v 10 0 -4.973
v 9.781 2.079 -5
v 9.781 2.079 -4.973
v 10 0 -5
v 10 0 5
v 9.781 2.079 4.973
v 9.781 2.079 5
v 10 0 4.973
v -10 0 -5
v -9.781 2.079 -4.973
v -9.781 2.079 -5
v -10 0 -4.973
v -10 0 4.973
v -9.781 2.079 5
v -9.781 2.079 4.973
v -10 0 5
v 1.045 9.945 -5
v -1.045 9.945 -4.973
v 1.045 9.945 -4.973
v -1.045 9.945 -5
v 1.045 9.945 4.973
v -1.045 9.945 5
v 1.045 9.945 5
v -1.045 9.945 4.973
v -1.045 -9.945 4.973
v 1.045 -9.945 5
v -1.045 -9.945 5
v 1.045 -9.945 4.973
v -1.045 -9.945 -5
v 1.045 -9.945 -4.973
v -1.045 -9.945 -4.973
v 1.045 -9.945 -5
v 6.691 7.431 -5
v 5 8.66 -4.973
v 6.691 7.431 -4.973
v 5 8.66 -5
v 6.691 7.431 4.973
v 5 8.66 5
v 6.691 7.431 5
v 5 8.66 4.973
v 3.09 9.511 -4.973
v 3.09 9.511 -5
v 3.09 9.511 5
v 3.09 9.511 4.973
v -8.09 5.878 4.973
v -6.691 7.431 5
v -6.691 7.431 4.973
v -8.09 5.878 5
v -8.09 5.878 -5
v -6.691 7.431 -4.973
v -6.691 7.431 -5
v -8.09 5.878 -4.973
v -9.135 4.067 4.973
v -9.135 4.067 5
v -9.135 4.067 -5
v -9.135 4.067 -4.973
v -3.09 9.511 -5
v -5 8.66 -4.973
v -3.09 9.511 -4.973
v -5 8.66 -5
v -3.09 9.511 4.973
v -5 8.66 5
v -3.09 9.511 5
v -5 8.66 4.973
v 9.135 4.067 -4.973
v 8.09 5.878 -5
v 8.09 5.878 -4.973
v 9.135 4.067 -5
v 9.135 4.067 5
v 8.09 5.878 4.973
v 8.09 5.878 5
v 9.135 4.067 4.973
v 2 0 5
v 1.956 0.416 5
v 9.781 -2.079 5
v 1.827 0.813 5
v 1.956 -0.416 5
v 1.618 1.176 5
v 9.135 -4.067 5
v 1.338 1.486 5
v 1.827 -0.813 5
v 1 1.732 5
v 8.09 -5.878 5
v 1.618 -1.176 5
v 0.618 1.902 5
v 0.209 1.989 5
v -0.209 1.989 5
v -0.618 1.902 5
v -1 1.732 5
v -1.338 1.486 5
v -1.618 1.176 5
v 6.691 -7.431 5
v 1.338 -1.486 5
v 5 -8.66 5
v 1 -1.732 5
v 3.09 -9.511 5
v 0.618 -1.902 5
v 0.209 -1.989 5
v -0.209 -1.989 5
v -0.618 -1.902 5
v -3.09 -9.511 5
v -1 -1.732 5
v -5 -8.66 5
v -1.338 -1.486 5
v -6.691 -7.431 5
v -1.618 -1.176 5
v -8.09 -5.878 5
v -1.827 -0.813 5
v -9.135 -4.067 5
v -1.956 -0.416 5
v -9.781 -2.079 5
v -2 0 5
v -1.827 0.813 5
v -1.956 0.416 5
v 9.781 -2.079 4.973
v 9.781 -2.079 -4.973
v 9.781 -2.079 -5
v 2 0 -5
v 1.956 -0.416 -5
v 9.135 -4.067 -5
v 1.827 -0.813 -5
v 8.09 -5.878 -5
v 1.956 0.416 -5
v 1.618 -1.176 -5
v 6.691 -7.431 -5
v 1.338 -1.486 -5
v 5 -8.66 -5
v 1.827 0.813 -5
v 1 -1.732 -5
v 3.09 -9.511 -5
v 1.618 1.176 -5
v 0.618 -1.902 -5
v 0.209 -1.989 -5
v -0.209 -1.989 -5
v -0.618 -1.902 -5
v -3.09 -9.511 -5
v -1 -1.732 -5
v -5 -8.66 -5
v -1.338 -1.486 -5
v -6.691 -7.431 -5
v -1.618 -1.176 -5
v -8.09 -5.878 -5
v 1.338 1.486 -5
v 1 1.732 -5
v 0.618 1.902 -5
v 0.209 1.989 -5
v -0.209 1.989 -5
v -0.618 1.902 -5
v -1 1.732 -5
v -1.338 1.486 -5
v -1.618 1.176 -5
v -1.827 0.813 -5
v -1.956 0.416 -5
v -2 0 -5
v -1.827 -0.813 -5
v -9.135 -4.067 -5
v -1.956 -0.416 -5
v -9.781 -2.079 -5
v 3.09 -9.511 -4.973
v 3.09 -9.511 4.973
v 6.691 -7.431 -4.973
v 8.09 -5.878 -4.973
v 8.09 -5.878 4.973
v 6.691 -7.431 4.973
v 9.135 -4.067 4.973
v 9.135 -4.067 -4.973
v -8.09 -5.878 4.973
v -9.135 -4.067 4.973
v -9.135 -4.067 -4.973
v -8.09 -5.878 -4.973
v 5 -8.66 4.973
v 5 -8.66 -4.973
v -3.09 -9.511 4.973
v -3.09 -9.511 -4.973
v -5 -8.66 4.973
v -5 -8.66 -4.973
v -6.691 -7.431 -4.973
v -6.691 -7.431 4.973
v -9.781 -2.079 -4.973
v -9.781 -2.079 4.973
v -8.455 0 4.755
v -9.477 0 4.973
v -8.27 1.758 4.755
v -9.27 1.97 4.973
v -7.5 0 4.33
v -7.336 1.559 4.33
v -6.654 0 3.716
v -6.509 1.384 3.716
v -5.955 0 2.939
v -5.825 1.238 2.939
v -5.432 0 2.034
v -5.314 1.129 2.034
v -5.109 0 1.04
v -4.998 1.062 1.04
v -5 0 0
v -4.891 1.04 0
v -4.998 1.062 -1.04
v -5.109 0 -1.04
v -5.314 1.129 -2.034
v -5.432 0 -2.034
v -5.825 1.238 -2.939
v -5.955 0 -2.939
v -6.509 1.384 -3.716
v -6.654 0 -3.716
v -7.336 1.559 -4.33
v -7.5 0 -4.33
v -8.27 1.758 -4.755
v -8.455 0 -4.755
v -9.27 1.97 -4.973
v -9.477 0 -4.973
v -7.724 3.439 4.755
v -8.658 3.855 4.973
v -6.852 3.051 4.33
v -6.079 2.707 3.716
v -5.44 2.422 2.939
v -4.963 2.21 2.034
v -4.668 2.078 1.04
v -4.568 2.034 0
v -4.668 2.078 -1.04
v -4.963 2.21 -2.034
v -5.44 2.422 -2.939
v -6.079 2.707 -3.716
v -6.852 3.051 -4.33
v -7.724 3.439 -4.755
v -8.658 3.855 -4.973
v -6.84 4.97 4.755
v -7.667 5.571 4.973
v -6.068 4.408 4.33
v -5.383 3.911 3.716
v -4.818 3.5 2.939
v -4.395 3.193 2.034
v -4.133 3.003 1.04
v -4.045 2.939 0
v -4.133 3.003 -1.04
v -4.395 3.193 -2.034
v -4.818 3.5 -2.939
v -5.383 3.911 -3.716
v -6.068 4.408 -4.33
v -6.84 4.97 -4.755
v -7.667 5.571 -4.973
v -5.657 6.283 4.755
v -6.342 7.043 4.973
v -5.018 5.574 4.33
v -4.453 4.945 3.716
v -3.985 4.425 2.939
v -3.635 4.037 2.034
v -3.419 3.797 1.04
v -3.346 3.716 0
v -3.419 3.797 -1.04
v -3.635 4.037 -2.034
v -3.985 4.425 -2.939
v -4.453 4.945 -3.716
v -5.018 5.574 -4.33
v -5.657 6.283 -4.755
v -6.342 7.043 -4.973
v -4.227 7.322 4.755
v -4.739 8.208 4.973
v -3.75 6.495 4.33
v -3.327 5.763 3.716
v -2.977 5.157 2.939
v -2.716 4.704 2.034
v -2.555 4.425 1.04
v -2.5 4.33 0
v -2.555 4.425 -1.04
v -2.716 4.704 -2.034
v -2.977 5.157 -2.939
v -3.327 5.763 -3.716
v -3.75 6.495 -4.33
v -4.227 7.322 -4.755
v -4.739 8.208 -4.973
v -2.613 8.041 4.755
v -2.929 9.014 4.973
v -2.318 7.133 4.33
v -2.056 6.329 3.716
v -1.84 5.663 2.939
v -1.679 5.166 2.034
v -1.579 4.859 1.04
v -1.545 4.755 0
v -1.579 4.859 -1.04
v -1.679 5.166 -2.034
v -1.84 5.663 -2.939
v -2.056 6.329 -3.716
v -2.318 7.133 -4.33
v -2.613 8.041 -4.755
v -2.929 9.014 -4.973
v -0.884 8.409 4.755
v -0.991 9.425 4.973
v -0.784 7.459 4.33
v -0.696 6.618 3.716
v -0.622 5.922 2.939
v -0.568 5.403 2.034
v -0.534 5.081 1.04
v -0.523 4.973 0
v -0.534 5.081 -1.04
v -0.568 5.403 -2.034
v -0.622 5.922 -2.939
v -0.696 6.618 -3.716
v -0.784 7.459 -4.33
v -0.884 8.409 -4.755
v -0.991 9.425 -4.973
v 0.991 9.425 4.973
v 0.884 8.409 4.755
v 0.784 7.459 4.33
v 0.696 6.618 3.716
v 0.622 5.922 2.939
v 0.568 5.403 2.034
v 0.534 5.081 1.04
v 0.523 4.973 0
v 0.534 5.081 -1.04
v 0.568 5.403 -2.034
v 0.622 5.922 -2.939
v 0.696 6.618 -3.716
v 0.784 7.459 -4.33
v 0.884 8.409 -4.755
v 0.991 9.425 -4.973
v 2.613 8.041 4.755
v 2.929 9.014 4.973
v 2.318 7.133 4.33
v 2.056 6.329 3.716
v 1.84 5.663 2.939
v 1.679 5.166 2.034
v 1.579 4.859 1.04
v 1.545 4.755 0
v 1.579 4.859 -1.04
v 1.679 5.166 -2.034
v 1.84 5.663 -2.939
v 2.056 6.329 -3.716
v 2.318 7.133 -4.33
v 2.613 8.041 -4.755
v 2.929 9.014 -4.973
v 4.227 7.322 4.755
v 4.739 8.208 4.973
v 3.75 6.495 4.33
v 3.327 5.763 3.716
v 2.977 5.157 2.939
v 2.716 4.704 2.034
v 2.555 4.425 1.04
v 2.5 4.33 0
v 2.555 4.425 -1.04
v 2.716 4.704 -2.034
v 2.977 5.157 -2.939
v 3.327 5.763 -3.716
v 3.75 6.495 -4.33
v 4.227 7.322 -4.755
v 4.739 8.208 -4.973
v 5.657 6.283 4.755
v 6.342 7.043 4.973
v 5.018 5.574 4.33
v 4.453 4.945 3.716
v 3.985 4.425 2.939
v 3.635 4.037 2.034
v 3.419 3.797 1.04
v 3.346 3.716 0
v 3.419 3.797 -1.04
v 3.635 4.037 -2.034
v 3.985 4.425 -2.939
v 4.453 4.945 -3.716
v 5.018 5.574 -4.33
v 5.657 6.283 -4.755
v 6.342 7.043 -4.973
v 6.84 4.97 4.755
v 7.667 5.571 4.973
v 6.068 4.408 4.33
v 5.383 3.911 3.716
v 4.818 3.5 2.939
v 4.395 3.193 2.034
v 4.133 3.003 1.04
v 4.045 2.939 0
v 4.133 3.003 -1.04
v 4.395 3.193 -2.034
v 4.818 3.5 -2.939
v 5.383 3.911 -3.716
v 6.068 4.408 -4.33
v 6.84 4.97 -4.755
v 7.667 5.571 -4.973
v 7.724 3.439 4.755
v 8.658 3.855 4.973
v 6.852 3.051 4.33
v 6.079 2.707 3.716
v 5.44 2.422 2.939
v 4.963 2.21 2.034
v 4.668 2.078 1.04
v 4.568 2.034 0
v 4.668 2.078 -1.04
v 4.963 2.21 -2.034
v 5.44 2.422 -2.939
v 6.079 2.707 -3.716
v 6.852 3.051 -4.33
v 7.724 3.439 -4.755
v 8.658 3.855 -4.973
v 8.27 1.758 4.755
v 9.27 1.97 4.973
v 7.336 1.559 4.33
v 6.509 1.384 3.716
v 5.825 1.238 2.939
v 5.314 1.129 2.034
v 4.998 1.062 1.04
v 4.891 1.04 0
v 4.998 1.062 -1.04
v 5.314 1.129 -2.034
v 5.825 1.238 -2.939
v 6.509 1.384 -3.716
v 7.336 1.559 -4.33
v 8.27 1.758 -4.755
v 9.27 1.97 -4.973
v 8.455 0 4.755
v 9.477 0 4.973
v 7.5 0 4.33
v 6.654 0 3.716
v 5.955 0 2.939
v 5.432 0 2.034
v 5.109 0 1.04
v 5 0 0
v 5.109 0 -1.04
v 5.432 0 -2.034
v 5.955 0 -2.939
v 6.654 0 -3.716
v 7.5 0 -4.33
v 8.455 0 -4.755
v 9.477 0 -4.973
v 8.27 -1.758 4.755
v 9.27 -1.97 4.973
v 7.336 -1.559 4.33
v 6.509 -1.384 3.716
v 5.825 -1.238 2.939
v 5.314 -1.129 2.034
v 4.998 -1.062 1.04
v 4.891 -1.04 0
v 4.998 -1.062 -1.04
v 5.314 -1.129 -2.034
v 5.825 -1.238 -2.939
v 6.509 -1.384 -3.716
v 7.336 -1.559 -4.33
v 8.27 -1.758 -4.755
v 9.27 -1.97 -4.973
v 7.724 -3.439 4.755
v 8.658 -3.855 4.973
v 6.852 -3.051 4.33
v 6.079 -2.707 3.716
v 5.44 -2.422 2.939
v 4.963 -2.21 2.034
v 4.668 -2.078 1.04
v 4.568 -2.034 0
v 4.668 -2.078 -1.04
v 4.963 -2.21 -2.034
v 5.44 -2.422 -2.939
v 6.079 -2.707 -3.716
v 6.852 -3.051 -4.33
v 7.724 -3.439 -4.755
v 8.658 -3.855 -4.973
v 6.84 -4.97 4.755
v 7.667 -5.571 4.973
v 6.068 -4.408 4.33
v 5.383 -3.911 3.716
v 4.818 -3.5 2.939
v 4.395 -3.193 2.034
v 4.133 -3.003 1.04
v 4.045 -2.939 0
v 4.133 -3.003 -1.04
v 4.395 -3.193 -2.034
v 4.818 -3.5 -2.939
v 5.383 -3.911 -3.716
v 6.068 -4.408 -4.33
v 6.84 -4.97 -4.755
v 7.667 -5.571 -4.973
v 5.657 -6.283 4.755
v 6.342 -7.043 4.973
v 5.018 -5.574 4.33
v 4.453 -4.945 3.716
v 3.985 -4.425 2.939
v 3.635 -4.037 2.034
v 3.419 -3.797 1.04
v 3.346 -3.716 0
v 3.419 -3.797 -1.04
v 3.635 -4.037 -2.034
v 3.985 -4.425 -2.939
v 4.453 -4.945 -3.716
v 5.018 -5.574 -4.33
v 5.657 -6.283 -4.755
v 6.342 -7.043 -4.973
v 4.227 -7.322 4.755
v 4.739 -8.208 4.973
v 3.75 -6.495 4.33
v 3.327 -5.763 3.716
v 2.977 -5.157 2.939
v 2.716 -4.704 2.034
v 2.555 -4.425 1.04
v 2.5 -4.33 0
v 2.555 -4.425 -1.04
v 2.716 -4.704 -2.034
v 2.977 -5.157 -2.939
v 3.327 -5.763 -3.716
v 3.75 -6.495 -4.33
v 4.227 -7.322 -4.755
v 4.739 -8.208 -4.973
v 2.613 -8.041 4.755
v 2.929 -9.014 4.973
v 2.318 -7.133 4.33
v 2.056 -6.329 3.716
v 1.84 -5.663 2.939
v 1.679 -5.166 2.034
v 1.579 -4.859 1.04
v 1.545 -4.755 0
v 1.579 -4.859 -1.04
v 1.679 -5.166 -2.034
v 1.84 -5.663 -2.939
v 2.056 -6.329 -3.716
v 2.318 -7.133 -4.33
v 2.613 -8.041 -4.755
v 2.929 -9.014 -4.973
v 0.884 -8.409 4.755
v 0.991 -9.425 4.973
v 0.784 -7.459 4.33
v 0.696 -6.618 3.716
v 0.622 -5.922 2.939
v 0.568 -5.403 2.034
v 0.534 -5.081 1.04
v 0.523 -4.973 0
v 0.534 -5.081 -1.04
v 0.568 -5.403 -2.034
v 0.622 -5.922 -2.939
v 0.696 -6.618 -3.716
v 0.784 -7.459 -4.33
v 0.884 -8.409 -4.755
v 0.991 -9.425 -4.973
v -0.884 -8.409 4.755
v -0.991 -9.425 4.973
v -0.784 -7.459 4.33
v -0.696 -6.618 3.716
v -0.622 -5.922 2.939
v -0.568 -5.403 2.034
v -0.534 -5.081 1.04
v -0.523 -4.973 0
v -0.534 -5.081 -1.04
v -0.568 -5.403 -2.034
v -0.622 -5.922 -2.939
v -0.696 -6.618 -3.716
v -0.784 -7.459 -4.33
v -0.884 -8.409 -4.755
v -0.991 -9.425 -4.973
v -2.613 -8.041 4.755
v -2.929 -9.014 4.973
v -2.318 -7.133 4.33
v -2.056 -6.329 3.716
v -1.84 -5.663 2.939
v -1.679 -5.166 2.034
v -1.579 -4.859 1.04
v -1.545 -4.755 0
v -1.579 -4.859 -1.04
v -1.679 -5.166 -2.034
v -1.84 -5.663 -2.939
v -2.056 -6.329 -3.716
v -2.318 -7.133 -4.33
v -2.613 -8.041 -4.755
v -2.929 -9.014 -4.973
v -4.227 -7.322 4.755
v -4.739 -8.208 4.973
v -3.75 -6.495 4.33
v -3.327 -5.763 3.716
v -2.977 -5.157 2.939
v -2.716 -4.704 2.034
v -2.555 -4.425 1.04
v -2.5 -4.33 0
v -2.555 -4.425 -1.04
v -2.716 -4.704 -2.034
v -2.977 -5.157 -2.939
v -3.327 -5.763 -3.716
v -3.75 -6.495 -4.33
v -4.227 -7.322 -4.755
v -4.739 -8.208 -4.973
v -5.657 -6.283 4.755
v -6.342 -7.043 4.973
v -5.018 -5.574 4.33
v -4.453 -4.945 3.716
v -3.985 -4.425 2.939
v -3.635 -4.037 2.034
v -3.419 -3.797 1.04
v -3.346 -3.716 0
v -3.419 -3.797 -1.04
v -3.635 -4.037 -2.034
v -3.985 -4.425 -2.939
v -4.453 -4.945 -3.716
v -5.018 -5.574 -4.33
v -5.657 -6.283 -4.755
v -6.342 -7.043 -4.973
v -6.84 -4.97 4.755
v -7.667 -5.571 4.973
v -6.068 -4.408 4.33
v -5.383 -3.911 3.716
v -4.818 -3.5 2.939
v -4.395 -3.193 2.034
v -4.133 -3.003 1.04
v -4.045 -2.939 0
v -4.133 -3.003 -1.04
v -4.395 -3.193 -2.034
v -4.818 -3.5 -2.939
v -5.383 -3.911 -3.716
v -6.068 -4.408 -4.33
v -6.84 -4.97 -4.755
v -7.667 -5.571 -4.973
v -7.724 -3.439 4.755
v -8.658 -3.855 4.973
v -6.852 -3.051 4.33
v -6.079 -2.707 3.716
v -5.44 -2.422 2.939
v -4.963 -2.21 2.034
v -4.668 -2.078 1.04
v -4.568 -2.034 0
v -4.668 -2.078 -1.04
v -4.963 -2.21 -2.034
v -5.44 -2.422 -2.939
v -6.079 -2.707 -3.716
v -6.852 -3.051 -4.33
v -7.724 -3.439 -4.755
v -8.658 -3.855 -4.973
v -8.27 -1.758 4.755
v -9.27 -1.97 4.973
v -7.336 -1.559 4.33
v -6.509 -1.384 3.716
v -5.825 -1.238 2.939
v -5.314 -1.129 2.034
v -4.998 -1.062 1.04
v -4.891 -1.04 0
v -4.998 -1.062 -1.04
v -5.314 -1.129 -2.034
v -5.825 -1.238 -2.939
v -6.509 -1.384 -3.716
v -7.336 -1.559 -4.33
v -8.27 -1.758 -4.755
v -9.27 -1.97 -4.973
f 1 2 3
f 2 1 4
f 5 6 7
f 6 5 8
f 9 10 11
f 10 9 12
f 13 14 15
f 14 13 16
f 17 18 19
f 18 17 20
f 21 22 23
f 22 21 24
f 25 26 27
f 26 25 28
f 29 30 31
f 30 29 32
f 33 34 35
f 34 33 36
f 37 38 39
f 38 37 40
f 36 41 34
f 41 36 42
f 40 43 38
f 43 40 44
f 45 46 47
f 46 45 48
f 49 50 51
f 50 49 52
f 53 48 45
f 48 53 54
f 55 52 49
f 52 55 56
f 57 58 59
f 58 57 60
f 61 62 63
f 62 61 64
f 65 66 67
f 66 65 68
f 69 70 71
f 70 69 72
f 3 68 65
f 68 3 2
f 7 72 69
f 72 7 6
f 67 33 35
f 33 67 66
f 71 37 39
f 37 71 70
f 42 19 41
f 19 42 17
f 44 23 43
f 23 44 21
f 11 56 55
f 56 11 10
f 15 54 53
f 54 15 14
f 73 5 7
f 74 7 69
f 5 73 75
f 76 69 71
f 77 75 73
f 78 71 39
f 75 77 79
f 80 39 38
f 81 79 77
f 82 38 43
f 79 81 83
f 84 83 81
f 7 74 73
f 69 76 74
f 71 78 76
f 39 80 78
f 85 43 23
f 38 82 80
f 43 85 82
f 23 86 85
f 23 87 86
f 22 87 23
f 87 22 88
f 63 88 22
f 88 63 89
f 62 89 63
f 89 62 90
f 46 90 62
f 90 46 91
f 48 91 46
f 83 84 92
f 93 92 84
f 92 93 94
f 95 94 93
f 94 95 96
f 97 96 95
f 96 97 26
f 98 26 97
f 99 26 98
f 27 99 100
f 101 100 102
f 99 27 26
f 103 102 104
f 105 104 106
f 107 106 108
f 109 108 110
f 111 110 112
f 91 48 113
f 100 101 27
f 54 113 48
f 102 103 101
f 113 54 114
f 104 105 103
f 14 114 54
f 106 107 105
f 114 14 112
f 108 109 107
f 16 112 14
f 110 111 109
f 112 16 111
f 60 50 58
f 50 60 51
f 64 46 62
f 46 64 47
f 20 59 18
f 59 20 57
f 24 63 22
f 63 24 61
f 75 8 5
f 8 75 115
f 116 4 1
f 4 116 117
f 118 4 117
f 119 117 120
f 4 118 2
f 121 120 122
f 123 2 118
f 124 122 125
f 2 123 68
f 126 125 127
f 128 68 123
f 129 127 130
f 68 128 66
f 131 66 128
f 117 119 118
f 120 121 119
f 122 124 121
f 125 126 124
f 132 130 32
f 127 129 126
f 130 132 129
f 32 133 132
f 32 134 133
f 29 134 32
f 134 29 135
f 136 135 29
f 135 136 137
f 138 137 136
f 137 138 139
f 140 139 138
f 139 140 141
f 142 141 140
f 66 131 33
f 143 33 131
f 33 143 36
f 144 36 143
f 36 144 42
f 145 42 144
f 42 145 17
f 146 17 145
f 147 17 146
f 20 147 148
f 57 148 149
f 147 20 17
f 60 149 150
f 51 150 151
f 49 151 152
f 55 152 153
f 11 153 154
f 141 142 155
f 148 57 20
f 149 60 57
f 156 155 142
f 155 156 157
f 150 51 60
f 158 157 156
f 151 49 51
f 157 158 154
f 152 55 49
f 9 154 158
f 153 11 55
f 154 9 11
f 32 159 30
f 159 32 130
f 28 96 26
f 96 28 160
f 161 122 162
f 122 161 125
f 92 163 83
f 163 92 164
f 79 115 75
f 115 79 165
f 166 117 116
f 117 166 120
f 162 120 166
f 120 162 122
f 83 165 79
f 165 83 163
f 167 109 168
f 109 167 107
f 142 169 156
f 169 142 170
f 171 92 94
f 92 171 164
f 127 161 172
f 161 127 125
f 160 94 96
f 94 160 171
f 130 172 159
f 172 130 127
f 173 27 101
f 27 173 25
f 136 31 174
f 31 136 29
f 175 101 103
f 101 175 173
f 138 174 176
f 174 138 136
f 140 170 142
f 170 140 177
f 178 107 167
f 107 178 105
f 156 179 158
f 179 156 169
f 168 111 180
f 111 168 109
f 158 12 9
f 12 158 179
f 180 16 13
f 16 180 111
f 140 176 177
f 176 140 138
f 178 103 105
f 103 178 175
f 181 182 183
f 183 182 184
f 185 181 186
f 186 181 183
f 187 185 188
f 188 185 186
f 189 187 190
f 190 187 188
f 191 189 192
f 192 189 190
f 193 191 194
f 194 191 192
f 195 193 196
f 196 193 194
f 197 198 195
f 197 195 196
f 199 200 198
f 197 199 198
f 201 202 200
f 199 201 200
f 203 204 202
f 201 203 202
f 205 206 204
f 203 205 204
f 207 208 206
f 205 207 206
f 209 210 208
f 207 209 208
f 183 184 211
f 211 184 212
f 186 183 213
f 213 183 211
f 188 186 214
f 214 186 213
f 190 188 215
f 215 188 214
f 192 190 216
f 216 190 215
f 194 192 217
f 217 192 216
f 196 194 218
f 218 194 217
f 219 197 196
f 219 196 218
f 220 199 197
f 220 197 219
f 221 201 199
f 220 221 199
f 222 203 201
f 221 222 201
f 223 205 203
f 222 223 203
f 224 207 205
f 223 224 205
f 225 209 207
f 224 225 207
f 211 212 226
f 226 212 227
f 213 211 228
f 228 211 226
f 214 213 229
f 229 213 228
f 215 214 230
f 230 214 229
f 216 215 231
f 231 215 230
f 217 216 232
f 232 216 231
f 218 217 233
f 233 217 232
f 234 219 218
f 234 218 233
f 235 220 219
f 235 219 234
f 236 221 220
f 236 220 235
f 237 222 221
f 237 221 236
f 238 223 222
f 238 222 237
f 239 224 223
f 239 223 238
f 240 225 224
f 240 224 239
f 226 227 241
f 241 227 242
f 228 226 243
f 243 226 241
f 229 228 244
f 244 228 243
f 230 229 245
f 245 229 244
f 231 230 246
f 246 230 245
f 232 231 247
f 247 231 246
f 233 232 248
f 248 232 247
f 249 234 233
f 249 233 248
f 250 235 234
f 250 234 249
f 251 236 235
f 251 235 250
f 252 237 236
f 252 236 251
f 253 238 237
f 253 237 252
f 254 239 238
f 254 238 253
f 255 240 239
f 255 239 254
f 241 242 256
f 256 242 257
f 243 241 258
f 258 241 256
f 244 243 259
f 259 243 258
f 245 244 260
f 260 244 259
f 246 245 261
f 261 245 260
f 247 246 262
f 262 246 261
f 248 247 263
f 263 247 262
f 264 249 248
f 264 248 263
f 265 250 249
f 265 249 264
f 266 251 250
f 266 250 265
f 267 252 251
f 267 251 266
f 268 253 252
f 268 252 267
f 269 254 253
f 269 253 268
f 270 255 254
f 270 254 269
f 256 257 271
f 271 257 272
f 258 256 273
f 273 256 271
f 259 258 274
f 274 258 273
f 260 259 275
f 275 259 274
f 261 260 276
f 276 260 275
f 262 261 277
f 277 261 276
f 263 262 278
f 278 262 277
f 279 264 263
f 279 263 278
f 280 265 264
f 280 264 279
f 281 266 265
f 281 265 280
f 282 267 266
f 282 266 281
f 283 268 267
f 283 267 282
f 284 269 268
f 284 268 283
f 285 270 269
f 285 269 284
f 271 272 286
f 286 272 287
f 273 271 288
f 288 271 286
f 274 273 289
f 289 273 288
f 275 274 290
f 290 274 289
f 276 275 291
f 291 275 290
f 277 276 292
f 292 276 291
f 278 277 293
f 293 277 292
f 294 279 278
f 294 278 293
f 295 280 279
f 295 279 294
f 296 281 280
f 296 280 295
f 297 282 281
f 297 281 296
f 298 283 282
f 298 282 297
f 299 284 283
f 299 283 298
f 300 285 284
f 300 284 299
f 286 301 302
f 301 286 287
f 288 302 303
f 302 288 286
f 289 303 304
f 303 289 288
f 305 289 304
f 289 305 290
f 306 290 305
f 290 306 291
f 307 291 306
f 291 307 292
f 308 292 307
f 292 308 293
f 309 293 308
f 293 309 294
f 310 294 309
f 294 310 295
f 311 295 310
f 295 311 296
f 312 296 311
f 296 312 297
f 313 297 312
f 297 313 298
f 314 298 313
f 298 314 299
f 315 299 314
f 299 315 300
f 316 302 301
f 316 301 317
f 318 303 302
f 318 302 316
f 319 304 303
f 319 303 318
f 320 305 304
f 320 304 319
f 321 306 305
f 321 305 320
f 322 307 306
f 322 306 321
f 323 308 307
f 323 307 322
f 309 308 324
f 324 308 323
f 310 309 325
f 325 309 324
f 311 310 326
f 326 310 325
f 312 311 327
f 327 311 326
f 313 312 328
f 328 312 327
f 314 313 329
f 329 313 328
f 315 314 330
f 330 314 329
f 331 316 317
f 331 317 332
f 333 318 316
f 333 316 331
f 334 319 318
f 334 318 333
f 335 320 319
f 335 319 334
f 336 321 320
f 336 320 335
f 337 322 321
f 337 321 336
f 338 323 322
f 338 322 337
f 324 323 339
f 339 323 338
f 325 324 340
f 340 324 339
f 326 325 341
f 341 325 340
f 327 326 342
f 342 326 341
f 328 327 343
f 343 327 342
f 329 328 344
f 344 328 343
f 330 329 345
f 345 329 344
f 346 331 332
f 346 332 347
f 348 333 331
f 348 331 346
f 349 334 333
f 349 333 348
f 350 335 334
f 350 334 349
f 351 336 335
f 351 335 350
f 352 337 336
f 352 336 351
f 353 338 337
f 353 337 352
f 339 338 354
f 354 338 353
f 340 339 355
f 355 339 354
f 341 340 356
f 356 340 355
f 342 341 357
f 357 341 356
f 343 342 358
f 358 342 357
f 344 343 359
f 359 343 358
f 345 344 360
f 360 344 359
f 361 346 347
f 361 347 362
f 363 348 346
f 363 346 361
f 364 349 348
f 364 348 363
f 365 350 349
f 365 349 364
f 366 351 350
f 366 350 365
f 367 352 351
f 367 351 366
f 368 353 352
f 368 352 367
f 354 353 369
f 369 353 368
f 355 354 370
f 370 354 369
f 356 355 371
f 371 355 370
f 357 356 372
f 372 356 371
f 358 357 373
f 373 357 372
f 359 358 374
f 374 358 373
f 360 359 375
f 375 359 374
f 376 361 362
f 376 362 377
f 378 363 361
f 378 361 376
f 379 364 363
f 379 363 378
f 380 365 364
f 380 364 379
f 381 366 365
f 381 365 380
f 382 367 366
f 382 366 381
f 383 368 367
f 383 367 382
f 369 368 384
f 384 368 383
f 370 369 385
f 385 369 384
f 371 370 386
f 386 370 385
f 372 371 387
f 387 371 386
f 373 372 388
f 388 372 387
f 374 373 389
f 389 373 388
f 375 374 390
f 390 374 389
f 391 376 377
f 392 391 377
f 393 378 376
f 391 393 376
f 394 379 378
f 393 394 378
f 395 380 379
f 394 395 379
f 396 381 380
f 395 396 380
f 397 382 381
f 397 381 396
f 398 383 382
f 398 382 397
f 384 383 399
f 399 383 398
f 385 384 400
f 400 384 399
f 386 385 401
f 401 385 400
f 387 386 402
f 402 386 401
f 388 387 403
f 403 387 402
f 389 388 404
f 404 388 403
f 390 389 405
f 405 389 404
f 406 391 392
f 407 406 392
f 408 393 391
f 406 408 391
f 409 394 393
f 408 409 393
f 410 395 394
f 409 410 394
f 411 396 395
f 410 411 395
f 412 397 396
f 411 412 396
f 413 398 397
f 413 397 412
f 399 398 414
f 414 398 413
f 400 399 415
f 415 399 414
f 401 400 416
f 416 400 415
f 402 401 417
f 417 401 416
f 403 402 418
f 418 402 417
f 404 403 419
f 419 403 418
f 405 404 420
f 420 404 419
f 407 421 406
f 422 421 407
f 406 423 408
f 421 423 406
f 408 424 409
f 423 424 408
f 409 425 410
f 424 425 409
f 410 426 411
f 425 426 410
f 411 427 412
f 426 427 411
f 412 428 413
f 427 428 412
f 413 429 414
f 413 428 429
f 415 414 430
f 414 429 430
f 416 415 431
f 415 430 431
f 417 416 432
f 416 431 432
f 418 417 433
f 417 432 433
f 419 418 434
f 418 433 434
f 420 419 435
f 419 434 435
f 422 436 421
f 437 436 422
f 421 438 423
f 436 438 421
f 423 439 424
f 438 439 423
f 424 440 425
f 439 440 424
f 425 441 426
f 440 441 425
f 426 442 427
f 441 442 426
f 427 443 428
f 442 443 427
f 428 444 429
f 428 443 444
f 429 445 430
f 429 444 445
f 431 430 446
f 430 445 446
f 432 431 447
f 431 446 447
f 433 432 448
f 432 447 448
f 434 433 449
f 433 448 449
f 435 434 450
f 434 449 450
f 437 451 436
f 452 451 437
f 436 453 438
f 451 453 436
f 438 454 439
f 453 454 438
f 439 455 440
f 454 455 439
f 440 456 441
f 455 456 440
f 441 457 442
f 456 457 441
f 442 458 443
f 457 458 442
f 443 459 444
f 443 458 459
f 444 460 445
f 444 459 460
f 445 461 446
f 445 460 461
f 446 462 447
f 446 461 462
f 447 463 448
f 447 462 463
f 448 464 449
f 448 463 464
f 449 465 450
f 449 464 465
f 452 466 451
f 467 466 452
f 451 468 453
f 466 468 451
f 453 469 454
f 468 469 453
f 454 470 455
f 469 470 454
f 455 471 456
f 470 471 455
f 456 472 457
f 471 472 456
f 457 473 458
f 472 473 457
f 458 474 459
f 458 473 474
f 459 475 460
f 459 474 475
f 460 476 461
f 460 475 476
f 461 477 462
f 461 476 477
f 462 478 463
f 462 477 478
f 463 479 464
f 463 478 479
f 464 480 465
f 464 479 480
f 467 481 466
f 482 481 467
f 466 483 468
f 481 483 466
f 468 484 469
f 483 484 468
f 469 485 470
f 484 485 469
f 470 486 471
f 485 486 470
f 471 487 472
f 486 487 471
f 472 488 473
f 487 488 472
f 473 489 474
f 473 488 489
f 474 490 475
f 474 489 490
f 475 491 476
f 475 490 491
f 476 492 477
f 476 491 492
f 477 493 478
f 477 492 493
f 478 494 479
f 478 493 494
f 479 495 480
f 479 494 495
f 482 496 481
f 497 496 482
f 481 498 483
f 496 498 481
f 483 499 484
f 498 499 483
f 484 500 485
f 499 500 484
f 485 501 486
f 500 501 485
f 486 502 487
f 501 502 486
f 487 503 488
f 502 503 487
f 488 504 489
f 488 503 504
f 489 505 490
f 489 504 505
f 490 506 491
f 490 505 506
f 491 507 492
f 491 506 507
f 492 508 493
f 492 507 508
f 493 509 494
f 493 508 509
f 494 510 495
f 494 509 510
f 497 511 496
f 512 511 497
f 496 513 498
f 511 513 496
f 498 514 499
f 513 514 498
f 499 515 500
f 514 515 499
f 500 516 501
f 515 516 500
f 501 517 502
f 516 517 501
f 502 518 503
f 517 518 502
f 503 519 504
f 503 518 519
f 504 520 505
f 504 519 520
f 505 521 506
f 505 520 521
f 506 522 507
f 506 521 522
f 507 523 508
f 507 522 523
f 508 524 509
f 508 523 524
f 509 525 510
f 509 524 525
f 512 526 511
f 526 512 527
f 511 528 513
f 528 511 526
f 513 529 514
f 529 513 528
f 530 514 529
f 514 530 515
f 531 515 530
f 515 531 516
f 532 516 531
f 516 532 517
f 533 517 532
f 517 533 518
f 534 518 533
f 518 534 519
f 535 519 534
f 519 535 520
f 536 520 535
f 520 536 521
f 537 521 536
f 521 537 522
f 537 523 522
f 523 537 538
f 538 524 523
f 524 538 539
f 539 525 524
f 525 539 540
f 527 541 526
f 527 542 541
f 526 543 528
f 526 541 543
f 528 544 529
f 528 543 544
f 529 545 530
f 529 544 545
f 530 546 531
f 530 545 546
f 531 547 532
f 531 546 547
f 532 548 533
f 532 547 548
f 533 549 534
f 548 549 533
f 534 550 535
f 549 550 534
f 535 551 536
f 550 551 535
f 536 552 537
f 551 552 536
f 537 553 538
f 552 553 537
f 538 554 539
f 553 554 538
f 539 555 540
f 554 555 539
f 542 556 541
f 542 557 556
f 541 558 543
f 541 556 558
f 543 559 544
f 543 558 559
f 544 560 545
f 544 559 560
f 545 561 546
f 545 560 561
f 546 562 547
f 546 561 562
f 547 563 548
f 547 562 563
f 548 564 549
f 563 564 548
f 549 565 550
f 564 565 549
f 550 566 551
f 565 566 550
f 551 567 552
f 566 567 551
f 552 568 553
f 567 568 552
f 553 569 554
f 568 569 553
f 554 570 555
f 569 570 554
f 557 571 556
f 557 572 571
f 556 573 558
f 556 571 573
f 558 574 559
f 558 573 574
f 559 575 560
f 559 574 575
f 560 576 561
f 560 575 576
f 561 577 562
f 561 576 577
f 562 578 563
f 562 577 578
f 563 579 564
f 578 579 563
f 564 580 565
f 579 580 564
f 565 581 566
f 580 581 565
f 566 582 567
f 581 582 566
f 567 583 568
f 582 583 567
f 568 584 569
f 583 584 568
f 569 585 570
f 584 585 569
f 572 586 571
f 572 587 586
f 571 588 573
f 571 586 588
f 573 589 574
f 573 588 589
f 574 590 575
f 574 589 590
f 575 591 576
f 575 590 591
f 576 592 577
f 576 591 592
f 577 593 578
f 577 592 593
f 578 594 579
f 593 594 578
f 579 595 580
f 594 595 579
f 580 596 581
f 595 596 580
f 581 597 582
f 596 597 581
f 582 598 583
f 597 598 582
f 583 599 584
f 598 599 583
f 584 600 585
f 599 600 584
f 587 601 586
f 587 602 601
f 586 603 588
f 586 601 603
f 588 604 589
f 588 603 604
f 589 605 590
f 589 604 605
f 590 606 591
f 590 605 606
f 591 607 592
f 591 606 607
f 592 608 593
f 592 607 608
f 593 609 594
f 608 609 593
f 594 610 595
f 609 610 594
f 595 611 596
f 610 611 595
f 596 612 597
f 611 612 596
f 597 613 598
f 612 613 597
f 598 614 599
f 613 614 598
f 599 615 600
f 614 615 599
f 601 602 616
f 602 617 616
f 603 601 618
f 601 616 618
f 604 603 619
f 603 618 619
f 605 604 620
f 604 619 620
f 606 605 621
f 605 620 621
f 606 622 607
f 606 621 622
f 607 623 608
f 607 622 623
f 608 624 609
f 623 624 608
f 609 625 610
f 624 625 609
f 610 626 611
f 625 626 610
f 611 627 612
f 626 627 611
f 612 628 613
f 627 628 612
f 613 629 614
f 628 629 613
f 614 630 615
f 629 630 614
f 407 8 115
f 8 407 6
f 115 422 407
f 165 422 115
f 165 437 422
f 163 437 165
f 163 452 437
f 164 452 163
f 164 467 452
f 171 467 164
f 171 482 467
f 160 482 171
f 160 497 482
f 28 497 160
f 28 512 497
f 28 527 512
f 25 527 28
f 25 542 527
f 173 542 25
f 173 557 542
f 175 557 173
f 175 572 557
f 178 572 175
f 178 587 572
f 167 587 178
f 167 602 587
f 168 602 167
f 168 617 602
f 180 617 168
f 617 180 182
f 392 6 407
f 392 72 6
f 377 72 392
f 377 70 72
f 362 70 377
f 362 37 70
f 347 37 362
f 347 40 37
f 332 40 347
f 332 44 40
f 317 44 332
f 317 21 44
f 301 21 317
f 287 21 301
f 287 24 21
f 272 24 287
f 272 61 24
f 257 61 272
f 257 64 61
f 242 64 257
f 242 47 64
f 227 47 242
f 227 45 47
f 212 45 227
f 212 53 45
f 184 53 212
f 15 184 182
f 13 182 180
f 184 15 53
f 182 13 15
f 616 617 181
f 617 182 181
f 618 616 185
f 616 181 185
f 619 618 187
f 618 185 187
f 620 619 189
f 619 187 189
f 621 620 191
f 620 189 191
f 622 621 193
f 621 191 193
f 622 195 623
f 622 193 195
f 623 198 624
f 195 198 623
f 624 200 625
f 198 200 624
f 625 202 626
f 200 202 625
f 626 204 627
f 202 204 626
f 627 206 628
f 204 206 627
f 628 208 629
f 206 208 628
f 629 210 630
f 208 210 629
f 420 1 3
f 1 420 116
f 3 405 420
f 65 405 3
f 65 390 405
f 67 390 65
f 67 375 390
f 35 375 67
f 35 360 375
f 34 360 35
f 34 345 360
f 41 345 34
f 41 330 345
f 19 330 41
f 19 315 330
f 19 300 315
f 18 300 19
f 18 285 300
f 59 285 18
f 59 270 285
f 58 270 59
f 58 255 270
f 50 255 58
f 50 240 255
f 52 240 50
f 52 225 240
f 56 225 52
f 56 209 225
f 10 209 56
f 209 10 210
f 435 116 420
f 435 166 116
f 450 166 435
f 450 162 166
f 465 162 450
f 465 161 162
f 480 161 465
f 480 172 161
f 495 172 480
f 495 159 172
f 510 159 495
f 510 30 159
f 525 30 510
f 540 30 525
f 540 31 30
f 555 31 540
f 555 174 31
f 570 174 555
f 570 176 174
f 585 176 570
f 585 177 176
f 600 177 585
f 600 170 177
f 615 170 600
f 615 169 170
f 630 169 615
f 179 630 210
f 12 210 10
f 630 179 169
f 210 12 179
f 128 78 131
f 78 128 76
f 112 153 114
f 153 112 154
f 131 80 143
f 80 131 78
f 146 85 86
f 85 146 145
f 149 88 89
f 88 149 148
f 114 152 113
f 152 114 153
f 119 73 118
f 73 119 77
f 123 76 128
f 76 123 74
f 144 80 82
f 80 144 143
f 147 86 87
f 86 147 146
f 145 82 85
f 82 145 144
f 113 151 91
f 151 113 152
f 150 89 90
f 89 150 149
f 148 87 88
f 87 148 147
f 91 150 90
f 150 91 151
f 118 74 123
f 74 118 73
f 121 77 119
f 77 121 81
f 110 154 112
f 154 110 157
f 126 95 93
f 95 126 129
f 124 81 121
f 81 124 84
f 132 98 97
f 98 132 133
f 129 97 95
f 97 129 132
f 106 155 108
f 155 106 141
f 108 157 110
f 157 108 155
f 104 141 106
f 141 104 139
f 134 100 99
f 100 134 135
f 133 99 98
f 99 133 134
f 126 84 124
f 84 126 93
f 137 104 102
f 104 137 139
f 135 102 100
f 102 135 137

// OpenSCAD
$fn=30;

radius_bar =5; //mm

bend_radius =5; //long wheel

angle_1 = 10;
angle_2 = 100;


difference() {
cylinder(r=10,h=10,center=true);
rotate_extrude()
    translate([bend_radius + radius_bar, 0, 0])
    circle(r=radius_bar);
cylinder(r=2,h=20,center=true);
    
    
}



       
